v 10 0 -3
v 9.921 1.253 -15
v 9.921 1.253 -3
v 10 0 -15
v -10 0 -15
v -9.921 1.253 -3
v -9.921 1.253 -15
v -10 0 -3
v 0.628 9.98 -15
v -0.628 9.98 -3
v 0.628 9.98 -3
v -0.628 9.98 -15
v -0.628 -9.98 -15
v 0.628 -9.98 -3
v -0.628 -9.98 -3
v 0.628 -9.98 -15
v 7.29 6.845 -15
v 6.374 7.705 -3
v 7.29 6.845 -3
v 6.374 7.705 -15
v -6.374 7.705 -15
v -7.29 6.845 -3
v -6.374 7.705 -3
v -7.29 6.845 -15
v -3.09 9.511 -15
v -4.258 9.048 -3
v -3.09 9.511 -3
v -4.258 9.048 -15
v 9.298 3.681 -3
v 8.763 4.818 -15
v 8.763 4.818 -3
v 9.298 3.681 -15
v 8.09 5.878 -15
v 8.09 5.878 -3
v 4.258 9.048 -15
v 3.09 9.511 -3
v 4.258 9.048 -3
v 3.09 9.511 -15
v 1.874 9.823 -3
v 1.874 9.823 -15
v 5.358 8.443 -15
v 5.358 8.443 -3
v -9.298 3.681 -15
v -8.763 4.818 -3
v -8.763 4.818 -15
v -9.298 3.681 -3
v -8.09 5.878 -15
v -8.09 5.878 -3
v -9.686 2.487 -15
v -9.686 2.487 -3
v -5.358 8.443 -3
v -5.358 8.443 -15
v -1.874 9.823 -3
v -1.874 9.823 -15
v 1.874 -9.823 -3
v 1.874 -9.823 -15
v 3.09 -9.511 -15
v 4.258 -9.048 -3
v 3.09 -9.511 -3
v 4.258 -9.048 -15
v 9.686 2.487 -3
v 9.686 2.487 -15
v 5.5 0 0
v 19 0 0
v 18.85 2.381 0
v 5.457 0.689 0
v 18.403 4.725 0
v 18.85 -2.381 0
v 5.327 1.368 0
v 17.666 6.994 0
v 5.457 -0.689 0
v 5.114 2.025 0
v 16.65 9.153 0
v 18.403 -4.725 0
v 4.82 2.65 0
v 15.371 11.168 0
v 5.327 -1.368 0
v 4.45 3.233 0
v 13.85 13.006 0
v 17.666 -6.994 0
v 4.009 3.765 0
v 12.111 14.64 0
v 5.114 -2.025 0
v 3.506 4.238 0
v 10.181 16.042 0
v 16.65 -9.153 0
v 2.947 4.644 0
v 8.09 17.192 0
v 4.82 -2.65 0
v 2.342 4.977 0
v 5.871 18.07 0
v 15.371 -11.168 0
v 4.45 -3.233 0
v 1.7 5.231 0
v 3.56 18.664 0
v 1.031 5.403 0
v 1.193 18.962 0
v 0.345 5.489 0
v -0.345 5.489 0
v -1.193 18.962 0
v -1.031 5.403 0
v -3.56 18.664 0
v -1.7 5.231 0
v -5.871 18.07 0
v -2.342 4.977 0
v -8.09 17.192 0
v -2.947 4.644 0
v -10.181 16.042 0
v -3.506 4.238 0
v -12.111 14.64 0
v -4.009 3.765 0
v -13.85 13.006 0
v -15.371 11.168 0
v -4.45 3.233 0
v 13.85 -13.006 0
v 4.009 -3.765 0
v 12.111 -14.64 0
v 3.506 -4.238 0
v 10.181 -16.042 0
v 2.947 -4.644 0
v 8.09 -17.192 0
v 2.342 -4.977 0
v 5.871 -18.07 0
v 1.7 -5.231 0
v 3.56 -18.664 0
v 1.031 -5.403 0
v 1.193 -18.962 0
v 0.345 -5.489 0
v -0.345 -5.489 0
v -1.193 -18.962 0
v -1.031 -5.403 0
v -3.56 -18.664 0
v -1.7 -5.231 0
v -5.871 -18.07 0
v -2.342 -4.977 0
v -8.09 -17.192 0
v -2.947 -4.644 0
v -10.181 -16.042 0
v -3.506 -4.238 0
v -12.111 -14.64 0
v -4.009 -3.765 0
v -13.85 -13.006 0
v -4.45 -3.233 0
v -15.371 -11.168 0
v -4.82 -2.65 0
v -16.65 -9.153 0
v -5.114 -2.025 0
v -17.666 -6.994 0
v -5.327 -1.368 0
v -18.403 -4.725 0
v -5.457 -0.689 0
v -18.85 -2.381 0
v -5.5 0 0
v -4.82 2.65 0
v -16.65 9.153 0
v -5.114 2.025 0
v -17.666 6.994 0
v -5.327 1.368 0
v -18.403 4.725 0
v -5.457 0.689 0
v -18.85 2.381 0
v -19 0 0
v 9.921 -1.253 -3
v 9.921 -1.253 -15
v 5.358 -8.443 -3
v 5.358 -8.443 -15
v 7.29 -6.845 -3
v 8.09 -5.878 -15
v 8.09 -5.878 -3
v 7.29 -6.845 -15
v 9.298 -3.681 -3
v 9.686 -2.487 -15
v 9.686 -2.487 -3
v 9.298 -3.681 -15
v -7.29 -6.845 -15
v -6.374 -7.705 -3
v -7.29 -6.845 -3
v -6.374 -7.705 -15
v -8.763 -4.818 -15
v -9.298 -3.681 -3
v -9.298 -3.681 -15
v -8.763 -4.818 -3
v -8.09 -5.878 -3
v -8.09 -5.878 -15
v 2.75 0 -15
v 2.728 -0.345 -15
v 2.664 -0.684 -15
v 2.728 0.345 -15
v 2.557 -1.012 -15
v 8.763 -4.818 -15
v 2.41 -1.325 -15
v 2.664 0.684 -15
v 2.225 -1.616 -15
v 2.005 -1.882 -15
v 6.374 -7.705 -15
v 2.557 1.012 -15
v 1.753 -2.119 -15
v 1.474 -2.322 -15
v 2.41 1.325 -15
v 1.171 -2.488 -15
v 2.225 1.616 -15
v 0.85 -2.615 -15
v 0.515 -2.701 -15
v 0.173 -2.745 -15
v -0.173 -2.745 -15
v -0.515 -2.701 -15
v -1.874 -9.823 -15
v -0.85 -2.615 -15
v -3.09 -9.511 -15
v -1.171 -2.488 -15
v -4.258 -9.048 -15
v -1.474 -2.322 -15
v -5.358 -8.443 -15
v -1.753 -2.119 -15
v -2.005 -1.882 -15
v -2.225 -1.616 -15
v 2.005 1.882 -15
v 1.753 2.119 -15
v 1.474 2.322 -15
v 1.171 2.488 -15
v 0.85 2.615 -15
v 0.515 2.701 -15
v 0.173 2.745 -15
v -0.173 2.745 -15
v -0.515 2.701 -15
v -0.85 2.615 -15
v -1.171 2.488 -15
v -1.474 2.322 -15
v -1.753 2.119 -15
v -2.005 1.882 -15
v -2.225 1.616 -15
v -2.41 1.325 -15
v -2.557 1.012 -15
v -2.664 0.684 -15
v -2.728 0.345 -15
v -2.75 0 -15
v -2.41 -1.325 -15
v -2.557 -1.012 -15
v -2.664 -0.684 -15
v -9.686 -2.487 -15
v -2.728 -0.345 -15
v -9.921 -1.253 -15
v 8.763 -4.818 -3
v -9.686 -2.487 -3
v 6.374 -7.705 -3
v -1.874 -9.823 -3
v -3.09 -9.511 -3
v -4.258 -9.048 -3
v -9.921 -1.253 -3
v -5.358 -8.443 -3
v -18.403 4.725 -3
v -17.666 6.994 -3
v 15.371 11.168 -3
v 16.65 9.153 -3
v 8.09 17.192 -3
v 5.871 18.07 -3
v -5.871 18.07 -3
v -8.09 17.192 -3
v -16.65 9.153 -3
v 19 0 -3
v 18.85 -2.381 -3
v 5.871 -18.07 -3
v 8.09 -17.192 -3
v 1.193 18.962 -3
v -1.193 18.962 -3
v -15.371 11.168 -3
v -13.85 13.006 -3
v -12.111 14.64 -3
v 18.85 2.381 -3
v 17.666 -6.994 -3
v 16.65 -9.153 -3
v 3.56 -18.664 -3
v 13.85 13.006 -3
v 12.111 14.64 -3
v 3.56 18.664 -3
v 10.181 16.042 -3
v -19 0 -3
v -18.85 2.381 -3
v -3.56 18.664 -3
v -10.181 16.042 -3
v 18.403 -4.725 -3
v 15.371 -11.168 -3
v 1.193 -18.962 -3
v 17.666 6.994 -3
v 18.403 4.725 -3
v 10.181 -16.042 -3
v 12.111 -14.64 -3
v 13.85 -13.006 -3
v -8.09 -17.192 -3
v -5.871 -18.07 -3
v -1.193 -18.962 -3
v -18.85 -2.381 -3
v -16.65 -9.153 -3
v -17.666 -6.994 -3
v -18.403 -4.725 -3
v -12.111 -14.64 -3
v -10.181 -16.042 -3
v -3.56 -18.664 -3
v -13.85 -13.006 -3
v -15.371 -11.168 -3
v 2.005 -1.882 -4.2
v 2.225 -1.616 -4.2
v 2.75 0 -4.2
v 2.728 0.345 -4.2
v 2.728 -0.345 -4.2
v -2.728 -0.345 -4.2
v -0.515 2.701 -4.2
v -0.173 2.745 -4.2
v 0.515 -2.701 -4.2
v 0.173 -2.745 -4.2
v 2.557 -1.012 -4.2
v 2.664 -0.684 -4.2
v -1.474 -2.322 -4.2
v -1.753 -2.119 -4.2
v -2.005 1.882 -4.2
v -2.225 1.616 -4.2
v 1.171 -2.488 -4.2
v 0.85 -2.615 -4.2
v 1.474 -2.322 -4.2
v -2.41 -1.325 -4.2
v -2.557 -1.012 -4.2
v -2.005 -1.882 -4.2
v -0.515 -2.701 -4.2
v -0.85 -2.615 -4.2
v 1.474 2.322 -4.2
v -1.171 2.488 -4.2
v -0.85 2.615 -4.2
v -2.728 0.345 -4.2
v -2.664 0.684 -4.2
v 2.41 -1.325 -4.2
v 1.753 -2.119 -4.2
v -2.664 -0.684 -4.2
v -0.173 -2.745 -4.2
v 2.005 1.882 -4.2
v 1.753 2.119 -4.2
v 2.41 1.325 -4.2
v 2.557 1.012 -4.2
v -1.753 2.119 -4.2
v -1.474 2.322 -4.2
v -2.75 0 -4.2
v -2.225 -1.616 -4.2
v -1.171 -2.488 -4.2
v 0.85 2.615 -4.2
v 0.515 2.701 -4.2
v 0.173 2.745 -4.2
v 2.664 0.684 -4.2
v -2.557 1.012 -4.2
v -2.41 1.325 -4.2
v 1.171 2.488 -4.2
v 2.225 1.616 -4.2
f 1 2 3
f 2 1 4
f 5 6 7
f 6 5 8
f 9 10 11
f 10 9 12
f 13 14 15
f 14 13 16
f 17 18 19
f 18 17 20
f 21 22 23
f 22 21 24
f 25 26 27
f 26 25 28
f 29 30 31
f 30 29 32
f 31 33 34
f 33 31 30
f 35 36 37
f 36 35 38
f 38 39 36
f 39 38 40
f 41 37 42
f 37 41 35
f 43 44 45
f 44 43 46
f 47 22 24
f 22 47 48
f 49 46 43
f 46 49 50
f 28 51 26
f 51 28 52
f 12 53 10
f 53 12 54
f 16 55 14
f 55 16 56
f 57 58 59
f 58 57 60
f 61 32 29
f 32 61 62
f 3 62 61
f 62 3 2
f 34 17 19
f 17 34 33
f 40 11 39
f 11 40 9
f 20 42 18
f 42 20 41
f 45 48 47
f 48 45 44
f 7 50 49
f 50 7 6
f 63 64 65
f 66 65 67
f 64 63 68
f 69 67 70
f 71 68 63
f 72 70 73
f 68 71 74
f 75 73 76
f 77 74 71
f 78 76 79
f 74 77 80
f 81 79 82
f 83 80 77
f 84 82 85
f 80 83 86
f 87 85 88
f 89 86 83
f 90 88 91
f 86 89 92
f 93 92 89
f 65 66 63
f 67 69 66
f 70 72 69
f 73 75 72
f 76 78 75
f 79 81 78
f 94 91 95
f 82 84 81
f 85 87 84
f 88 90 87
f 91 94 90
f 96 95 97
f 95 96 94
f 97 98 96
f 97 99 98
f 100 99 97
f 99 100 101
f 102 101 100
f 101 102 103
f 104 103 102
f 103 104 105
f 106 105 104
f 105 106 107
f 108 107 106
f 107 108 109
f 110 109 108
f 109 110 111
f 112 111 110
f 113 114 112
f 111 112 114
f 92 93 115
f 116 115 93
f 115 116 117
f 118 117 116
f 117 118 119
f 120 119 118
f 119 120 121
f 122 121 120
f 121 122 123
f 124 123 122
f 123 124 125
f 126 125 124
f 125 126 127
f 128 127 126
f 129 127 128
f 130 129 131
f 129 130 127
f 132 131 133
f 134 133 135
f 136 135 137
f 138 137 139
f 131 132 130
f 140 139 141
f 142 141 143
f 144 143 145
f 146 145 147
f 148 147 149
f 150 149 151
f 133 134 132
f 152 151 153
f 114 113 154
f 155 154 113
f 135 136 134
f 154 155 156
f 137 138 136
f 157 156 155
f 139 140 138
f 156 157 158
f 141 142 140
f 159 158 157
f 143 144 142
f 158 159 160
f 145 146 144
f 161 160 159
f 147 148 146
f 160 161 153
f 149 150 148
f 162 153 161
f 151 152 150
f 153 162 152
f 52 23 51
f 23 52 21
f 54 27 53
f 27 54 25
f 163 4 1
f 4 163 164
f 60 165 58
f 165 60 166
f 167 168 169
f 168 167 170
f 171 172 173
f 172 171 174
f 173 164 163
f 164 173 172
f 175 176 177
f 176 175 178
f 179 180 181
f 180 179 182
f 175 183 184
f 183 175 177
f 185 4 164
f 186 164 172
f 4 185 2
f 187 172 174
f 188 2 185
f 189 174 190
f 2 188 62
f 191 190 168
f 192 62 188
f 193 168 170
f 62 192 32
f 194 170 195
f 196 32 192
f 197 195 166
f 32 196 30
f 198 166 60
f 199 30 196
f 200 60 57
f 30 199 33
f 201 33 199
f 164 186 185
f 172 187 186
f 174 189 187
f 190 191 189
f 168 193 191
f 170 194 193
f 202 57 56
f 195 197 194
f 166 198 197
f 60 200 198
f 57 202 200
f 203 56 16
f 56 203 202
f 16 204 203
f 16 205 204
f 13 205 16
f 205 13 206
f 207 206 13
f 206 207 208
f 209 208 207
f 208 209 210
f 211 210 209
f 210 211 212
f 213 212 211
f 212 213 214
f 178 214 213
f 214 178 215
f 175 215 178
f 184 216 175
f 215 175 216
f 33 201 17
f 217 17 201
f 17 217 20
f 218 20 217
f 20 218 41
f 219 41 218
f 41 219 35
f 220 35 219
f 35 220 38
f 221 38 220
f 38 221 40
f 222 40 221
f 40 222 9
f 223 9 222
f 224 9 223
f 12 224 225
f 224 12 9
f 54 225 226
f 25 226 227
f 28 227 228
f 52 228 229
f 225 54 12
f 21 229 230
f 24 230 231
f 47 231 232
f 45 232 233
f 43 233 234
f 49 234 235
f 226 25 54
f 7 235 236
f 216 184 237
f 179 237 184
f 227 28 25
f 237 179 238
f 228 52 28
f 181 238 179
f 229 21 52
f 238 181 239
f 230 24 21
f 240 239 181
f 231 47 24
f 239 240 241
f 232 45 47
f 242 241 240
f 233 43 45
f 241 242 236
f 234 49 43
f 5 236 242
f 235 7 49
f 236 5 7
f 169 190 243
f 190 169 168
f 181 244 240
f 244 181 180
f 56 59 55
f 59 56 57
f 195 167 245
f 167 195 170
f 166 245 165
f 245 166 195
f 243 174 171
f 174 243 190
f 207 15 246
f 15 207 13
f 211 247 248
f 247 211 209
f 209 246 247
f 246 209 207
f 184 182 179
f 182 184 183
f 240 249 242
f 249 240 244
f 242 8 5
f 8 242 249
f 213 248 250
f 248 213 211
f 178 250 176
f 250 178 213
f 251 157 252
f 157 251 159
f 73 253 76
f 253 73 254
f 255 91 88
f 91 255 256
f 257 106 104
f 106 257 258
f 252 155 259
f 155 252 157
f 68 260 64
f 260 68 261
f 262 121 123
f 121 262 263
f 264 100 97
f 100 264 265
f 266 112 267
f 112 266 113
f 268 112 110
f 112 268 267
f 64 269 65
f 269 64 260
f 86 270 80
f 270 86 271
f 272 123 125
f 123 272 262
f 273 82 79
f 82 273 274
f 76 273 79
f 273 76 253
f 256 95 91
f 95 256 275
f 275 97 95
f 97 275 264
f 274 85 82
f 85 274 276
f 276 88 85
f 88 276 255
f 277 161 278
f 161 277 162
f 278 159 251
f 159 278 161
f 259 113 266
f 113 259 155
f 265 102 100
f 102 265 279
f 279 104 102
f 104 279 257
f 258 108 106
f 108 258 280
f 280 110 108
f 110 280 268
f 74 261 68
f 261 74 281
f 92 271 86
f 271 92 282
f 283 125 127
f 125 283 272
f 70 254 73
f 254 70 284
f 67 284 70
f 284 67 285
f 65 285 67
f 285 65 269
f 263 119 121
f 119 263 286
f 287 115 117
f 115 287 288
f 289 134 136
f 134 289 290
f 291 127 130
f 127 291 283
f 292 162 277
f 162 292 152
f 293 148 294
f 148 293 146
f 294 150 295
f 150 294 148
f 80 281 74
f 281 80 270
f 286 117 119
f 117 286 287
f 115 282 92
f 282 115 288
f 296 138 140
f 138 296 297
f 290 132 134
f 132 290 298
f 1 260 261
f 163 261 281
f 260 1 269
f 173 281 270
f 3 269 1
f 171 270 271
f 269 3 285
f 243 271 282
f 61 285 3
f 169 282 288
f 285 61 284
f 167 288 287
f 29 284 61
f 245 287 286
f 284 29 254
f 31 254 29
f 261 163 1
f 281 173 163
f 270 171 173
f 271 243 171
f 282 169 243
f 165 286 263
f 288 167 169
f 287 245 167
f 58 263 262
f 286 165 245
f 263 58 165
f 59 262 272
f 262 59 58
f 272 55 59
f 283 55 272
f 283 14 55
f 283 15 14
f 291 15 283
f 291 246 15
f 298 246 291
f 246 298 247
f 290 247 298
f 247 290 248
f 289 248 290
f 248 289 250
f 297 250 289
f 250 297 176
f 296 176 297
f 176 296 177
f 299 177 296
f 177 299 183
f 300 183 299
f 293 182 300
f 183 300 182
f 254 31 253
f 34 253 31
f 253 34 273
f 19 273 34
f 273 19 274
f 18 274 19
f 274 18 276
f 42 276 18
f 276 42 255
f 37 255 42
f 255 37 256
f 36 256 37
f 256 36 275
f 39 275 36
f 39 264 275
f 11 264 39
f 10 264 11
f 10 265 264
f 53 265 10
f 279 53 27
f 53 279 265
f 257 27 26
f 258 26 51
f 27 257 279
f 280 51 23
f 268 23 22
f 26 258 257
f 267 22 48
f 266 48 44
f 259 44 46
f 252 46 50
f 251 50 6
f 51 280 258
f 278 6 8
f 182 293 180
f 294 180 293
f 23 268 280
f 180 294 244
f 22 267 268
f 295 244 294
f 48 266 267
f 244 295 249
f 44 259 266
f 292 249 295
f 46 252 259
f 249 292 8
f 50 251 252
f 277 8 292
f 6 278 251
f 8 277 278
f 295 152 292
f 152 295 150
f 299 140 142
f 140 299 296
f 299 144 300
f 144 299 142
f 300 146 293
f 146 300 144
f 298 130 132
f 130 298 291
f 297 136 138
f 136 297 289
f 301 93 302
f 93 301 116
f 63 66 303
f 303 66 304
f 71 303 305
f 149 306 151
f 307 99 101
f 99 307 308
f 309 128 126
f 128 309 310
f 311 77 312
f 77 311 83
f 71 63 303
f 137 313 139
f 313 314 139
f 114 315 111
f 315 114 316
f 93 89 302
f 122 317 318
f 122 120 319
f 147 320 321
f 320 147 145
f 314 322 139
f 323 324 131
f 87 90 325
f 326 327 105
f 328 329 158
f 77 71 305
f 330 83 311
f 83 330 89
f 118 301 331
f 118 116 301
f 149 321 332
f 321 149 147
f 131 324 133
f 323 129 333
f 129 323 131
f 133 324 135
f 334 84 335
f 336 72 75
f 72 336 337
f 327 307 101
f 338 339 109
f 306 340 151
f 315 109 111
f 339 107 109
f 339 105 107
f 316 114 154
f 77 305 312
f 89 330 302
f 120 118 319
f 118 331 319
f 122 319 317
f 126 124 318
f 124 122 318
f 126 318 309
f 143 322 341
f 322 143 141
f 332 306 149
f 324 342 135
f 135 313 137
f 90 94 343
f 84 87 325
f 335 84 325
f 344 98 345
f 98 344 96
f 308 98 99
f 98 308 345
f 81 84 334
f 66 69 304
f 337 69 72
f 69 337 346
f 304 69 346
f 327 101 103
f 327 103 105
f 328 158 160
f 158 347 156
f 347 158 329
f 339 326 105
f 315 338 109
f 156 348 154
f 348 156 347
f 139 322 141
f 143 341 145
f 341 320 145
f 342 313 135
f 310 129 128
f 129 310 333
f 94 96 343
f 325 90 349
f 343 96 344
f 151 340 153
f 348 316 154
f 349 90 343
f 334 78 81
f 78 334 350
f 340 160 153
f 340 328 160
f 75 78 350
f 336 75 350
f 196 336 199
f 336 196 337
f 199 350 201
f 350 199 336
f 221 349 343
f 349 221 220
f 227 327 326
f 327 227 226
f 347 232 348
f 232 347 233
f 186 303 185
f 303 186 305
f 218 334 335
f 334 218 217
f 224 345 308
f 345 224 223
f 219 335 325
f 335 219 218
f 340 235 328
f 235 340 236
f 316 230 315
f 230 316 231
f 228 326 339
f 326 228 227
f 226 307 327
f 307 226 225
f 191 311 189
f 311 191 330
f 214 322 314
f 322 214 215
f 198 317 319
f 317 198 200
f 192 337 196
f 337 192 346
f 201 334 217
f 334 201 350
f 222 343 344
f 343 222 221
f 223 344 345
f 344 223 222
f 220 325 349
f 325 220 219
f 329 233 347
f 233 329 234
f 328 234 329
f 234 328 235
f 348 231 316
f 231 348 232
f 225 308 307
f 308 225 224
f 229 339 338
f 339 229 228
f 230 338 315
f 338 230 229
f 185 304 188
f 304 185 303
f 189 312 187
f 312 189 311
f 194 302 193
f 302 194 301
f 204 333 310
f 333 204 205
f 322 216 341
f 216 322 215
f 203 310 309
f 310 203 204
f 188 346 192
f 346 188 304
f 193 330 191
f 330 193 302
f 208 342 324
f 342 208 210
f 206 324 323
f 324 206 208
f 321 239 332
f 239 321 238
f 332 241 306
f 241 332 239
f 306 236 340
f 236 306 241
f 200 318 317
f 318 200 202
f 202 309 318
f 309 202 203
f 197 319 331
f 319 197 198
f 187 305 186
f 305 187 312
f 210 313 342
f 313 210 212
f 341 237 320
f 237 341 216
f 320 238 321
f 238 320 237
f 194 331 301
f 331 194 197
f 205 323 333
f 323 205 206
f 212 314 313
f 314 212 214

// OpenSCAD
$fn = 50;


difference() {
	union() {
		translate(v = [0, 0, -15.0000000000]) {
			cylinder(h = 15, r = 10.0000000000);
		}
		translate(v = [0, 0, -3.0000000000]) {
			cylinder(h = 3, r = 19.0000000000);
		}
	}
	union() {
		translate(v = [0, 0, 0]) {
			rotate(a = [0, 0, 0]) {
				difference() {
					union() {
						#translate(v = [0, 0, -15.0000000000]) {
							cylinder(h = 15, r = 2.2500000000);
						}
						#translate(v = [0, 0, -4.2000000000]) {
							cylinder(h = 4.2000000000, r1 = 2.7500000000, r2 = 5.5000000000);
						}
						#translate(v = [0, 0, -15.0000000000]) {
							cylinder(h = 15, r = 2.7500000000);
						}
						#translate(v = [0, 0, -15.0000000000]) {
							cylinder(h = 15, r = 2.2500000000);
						}
					}
					union();
				}
			}
		}
	}
}
